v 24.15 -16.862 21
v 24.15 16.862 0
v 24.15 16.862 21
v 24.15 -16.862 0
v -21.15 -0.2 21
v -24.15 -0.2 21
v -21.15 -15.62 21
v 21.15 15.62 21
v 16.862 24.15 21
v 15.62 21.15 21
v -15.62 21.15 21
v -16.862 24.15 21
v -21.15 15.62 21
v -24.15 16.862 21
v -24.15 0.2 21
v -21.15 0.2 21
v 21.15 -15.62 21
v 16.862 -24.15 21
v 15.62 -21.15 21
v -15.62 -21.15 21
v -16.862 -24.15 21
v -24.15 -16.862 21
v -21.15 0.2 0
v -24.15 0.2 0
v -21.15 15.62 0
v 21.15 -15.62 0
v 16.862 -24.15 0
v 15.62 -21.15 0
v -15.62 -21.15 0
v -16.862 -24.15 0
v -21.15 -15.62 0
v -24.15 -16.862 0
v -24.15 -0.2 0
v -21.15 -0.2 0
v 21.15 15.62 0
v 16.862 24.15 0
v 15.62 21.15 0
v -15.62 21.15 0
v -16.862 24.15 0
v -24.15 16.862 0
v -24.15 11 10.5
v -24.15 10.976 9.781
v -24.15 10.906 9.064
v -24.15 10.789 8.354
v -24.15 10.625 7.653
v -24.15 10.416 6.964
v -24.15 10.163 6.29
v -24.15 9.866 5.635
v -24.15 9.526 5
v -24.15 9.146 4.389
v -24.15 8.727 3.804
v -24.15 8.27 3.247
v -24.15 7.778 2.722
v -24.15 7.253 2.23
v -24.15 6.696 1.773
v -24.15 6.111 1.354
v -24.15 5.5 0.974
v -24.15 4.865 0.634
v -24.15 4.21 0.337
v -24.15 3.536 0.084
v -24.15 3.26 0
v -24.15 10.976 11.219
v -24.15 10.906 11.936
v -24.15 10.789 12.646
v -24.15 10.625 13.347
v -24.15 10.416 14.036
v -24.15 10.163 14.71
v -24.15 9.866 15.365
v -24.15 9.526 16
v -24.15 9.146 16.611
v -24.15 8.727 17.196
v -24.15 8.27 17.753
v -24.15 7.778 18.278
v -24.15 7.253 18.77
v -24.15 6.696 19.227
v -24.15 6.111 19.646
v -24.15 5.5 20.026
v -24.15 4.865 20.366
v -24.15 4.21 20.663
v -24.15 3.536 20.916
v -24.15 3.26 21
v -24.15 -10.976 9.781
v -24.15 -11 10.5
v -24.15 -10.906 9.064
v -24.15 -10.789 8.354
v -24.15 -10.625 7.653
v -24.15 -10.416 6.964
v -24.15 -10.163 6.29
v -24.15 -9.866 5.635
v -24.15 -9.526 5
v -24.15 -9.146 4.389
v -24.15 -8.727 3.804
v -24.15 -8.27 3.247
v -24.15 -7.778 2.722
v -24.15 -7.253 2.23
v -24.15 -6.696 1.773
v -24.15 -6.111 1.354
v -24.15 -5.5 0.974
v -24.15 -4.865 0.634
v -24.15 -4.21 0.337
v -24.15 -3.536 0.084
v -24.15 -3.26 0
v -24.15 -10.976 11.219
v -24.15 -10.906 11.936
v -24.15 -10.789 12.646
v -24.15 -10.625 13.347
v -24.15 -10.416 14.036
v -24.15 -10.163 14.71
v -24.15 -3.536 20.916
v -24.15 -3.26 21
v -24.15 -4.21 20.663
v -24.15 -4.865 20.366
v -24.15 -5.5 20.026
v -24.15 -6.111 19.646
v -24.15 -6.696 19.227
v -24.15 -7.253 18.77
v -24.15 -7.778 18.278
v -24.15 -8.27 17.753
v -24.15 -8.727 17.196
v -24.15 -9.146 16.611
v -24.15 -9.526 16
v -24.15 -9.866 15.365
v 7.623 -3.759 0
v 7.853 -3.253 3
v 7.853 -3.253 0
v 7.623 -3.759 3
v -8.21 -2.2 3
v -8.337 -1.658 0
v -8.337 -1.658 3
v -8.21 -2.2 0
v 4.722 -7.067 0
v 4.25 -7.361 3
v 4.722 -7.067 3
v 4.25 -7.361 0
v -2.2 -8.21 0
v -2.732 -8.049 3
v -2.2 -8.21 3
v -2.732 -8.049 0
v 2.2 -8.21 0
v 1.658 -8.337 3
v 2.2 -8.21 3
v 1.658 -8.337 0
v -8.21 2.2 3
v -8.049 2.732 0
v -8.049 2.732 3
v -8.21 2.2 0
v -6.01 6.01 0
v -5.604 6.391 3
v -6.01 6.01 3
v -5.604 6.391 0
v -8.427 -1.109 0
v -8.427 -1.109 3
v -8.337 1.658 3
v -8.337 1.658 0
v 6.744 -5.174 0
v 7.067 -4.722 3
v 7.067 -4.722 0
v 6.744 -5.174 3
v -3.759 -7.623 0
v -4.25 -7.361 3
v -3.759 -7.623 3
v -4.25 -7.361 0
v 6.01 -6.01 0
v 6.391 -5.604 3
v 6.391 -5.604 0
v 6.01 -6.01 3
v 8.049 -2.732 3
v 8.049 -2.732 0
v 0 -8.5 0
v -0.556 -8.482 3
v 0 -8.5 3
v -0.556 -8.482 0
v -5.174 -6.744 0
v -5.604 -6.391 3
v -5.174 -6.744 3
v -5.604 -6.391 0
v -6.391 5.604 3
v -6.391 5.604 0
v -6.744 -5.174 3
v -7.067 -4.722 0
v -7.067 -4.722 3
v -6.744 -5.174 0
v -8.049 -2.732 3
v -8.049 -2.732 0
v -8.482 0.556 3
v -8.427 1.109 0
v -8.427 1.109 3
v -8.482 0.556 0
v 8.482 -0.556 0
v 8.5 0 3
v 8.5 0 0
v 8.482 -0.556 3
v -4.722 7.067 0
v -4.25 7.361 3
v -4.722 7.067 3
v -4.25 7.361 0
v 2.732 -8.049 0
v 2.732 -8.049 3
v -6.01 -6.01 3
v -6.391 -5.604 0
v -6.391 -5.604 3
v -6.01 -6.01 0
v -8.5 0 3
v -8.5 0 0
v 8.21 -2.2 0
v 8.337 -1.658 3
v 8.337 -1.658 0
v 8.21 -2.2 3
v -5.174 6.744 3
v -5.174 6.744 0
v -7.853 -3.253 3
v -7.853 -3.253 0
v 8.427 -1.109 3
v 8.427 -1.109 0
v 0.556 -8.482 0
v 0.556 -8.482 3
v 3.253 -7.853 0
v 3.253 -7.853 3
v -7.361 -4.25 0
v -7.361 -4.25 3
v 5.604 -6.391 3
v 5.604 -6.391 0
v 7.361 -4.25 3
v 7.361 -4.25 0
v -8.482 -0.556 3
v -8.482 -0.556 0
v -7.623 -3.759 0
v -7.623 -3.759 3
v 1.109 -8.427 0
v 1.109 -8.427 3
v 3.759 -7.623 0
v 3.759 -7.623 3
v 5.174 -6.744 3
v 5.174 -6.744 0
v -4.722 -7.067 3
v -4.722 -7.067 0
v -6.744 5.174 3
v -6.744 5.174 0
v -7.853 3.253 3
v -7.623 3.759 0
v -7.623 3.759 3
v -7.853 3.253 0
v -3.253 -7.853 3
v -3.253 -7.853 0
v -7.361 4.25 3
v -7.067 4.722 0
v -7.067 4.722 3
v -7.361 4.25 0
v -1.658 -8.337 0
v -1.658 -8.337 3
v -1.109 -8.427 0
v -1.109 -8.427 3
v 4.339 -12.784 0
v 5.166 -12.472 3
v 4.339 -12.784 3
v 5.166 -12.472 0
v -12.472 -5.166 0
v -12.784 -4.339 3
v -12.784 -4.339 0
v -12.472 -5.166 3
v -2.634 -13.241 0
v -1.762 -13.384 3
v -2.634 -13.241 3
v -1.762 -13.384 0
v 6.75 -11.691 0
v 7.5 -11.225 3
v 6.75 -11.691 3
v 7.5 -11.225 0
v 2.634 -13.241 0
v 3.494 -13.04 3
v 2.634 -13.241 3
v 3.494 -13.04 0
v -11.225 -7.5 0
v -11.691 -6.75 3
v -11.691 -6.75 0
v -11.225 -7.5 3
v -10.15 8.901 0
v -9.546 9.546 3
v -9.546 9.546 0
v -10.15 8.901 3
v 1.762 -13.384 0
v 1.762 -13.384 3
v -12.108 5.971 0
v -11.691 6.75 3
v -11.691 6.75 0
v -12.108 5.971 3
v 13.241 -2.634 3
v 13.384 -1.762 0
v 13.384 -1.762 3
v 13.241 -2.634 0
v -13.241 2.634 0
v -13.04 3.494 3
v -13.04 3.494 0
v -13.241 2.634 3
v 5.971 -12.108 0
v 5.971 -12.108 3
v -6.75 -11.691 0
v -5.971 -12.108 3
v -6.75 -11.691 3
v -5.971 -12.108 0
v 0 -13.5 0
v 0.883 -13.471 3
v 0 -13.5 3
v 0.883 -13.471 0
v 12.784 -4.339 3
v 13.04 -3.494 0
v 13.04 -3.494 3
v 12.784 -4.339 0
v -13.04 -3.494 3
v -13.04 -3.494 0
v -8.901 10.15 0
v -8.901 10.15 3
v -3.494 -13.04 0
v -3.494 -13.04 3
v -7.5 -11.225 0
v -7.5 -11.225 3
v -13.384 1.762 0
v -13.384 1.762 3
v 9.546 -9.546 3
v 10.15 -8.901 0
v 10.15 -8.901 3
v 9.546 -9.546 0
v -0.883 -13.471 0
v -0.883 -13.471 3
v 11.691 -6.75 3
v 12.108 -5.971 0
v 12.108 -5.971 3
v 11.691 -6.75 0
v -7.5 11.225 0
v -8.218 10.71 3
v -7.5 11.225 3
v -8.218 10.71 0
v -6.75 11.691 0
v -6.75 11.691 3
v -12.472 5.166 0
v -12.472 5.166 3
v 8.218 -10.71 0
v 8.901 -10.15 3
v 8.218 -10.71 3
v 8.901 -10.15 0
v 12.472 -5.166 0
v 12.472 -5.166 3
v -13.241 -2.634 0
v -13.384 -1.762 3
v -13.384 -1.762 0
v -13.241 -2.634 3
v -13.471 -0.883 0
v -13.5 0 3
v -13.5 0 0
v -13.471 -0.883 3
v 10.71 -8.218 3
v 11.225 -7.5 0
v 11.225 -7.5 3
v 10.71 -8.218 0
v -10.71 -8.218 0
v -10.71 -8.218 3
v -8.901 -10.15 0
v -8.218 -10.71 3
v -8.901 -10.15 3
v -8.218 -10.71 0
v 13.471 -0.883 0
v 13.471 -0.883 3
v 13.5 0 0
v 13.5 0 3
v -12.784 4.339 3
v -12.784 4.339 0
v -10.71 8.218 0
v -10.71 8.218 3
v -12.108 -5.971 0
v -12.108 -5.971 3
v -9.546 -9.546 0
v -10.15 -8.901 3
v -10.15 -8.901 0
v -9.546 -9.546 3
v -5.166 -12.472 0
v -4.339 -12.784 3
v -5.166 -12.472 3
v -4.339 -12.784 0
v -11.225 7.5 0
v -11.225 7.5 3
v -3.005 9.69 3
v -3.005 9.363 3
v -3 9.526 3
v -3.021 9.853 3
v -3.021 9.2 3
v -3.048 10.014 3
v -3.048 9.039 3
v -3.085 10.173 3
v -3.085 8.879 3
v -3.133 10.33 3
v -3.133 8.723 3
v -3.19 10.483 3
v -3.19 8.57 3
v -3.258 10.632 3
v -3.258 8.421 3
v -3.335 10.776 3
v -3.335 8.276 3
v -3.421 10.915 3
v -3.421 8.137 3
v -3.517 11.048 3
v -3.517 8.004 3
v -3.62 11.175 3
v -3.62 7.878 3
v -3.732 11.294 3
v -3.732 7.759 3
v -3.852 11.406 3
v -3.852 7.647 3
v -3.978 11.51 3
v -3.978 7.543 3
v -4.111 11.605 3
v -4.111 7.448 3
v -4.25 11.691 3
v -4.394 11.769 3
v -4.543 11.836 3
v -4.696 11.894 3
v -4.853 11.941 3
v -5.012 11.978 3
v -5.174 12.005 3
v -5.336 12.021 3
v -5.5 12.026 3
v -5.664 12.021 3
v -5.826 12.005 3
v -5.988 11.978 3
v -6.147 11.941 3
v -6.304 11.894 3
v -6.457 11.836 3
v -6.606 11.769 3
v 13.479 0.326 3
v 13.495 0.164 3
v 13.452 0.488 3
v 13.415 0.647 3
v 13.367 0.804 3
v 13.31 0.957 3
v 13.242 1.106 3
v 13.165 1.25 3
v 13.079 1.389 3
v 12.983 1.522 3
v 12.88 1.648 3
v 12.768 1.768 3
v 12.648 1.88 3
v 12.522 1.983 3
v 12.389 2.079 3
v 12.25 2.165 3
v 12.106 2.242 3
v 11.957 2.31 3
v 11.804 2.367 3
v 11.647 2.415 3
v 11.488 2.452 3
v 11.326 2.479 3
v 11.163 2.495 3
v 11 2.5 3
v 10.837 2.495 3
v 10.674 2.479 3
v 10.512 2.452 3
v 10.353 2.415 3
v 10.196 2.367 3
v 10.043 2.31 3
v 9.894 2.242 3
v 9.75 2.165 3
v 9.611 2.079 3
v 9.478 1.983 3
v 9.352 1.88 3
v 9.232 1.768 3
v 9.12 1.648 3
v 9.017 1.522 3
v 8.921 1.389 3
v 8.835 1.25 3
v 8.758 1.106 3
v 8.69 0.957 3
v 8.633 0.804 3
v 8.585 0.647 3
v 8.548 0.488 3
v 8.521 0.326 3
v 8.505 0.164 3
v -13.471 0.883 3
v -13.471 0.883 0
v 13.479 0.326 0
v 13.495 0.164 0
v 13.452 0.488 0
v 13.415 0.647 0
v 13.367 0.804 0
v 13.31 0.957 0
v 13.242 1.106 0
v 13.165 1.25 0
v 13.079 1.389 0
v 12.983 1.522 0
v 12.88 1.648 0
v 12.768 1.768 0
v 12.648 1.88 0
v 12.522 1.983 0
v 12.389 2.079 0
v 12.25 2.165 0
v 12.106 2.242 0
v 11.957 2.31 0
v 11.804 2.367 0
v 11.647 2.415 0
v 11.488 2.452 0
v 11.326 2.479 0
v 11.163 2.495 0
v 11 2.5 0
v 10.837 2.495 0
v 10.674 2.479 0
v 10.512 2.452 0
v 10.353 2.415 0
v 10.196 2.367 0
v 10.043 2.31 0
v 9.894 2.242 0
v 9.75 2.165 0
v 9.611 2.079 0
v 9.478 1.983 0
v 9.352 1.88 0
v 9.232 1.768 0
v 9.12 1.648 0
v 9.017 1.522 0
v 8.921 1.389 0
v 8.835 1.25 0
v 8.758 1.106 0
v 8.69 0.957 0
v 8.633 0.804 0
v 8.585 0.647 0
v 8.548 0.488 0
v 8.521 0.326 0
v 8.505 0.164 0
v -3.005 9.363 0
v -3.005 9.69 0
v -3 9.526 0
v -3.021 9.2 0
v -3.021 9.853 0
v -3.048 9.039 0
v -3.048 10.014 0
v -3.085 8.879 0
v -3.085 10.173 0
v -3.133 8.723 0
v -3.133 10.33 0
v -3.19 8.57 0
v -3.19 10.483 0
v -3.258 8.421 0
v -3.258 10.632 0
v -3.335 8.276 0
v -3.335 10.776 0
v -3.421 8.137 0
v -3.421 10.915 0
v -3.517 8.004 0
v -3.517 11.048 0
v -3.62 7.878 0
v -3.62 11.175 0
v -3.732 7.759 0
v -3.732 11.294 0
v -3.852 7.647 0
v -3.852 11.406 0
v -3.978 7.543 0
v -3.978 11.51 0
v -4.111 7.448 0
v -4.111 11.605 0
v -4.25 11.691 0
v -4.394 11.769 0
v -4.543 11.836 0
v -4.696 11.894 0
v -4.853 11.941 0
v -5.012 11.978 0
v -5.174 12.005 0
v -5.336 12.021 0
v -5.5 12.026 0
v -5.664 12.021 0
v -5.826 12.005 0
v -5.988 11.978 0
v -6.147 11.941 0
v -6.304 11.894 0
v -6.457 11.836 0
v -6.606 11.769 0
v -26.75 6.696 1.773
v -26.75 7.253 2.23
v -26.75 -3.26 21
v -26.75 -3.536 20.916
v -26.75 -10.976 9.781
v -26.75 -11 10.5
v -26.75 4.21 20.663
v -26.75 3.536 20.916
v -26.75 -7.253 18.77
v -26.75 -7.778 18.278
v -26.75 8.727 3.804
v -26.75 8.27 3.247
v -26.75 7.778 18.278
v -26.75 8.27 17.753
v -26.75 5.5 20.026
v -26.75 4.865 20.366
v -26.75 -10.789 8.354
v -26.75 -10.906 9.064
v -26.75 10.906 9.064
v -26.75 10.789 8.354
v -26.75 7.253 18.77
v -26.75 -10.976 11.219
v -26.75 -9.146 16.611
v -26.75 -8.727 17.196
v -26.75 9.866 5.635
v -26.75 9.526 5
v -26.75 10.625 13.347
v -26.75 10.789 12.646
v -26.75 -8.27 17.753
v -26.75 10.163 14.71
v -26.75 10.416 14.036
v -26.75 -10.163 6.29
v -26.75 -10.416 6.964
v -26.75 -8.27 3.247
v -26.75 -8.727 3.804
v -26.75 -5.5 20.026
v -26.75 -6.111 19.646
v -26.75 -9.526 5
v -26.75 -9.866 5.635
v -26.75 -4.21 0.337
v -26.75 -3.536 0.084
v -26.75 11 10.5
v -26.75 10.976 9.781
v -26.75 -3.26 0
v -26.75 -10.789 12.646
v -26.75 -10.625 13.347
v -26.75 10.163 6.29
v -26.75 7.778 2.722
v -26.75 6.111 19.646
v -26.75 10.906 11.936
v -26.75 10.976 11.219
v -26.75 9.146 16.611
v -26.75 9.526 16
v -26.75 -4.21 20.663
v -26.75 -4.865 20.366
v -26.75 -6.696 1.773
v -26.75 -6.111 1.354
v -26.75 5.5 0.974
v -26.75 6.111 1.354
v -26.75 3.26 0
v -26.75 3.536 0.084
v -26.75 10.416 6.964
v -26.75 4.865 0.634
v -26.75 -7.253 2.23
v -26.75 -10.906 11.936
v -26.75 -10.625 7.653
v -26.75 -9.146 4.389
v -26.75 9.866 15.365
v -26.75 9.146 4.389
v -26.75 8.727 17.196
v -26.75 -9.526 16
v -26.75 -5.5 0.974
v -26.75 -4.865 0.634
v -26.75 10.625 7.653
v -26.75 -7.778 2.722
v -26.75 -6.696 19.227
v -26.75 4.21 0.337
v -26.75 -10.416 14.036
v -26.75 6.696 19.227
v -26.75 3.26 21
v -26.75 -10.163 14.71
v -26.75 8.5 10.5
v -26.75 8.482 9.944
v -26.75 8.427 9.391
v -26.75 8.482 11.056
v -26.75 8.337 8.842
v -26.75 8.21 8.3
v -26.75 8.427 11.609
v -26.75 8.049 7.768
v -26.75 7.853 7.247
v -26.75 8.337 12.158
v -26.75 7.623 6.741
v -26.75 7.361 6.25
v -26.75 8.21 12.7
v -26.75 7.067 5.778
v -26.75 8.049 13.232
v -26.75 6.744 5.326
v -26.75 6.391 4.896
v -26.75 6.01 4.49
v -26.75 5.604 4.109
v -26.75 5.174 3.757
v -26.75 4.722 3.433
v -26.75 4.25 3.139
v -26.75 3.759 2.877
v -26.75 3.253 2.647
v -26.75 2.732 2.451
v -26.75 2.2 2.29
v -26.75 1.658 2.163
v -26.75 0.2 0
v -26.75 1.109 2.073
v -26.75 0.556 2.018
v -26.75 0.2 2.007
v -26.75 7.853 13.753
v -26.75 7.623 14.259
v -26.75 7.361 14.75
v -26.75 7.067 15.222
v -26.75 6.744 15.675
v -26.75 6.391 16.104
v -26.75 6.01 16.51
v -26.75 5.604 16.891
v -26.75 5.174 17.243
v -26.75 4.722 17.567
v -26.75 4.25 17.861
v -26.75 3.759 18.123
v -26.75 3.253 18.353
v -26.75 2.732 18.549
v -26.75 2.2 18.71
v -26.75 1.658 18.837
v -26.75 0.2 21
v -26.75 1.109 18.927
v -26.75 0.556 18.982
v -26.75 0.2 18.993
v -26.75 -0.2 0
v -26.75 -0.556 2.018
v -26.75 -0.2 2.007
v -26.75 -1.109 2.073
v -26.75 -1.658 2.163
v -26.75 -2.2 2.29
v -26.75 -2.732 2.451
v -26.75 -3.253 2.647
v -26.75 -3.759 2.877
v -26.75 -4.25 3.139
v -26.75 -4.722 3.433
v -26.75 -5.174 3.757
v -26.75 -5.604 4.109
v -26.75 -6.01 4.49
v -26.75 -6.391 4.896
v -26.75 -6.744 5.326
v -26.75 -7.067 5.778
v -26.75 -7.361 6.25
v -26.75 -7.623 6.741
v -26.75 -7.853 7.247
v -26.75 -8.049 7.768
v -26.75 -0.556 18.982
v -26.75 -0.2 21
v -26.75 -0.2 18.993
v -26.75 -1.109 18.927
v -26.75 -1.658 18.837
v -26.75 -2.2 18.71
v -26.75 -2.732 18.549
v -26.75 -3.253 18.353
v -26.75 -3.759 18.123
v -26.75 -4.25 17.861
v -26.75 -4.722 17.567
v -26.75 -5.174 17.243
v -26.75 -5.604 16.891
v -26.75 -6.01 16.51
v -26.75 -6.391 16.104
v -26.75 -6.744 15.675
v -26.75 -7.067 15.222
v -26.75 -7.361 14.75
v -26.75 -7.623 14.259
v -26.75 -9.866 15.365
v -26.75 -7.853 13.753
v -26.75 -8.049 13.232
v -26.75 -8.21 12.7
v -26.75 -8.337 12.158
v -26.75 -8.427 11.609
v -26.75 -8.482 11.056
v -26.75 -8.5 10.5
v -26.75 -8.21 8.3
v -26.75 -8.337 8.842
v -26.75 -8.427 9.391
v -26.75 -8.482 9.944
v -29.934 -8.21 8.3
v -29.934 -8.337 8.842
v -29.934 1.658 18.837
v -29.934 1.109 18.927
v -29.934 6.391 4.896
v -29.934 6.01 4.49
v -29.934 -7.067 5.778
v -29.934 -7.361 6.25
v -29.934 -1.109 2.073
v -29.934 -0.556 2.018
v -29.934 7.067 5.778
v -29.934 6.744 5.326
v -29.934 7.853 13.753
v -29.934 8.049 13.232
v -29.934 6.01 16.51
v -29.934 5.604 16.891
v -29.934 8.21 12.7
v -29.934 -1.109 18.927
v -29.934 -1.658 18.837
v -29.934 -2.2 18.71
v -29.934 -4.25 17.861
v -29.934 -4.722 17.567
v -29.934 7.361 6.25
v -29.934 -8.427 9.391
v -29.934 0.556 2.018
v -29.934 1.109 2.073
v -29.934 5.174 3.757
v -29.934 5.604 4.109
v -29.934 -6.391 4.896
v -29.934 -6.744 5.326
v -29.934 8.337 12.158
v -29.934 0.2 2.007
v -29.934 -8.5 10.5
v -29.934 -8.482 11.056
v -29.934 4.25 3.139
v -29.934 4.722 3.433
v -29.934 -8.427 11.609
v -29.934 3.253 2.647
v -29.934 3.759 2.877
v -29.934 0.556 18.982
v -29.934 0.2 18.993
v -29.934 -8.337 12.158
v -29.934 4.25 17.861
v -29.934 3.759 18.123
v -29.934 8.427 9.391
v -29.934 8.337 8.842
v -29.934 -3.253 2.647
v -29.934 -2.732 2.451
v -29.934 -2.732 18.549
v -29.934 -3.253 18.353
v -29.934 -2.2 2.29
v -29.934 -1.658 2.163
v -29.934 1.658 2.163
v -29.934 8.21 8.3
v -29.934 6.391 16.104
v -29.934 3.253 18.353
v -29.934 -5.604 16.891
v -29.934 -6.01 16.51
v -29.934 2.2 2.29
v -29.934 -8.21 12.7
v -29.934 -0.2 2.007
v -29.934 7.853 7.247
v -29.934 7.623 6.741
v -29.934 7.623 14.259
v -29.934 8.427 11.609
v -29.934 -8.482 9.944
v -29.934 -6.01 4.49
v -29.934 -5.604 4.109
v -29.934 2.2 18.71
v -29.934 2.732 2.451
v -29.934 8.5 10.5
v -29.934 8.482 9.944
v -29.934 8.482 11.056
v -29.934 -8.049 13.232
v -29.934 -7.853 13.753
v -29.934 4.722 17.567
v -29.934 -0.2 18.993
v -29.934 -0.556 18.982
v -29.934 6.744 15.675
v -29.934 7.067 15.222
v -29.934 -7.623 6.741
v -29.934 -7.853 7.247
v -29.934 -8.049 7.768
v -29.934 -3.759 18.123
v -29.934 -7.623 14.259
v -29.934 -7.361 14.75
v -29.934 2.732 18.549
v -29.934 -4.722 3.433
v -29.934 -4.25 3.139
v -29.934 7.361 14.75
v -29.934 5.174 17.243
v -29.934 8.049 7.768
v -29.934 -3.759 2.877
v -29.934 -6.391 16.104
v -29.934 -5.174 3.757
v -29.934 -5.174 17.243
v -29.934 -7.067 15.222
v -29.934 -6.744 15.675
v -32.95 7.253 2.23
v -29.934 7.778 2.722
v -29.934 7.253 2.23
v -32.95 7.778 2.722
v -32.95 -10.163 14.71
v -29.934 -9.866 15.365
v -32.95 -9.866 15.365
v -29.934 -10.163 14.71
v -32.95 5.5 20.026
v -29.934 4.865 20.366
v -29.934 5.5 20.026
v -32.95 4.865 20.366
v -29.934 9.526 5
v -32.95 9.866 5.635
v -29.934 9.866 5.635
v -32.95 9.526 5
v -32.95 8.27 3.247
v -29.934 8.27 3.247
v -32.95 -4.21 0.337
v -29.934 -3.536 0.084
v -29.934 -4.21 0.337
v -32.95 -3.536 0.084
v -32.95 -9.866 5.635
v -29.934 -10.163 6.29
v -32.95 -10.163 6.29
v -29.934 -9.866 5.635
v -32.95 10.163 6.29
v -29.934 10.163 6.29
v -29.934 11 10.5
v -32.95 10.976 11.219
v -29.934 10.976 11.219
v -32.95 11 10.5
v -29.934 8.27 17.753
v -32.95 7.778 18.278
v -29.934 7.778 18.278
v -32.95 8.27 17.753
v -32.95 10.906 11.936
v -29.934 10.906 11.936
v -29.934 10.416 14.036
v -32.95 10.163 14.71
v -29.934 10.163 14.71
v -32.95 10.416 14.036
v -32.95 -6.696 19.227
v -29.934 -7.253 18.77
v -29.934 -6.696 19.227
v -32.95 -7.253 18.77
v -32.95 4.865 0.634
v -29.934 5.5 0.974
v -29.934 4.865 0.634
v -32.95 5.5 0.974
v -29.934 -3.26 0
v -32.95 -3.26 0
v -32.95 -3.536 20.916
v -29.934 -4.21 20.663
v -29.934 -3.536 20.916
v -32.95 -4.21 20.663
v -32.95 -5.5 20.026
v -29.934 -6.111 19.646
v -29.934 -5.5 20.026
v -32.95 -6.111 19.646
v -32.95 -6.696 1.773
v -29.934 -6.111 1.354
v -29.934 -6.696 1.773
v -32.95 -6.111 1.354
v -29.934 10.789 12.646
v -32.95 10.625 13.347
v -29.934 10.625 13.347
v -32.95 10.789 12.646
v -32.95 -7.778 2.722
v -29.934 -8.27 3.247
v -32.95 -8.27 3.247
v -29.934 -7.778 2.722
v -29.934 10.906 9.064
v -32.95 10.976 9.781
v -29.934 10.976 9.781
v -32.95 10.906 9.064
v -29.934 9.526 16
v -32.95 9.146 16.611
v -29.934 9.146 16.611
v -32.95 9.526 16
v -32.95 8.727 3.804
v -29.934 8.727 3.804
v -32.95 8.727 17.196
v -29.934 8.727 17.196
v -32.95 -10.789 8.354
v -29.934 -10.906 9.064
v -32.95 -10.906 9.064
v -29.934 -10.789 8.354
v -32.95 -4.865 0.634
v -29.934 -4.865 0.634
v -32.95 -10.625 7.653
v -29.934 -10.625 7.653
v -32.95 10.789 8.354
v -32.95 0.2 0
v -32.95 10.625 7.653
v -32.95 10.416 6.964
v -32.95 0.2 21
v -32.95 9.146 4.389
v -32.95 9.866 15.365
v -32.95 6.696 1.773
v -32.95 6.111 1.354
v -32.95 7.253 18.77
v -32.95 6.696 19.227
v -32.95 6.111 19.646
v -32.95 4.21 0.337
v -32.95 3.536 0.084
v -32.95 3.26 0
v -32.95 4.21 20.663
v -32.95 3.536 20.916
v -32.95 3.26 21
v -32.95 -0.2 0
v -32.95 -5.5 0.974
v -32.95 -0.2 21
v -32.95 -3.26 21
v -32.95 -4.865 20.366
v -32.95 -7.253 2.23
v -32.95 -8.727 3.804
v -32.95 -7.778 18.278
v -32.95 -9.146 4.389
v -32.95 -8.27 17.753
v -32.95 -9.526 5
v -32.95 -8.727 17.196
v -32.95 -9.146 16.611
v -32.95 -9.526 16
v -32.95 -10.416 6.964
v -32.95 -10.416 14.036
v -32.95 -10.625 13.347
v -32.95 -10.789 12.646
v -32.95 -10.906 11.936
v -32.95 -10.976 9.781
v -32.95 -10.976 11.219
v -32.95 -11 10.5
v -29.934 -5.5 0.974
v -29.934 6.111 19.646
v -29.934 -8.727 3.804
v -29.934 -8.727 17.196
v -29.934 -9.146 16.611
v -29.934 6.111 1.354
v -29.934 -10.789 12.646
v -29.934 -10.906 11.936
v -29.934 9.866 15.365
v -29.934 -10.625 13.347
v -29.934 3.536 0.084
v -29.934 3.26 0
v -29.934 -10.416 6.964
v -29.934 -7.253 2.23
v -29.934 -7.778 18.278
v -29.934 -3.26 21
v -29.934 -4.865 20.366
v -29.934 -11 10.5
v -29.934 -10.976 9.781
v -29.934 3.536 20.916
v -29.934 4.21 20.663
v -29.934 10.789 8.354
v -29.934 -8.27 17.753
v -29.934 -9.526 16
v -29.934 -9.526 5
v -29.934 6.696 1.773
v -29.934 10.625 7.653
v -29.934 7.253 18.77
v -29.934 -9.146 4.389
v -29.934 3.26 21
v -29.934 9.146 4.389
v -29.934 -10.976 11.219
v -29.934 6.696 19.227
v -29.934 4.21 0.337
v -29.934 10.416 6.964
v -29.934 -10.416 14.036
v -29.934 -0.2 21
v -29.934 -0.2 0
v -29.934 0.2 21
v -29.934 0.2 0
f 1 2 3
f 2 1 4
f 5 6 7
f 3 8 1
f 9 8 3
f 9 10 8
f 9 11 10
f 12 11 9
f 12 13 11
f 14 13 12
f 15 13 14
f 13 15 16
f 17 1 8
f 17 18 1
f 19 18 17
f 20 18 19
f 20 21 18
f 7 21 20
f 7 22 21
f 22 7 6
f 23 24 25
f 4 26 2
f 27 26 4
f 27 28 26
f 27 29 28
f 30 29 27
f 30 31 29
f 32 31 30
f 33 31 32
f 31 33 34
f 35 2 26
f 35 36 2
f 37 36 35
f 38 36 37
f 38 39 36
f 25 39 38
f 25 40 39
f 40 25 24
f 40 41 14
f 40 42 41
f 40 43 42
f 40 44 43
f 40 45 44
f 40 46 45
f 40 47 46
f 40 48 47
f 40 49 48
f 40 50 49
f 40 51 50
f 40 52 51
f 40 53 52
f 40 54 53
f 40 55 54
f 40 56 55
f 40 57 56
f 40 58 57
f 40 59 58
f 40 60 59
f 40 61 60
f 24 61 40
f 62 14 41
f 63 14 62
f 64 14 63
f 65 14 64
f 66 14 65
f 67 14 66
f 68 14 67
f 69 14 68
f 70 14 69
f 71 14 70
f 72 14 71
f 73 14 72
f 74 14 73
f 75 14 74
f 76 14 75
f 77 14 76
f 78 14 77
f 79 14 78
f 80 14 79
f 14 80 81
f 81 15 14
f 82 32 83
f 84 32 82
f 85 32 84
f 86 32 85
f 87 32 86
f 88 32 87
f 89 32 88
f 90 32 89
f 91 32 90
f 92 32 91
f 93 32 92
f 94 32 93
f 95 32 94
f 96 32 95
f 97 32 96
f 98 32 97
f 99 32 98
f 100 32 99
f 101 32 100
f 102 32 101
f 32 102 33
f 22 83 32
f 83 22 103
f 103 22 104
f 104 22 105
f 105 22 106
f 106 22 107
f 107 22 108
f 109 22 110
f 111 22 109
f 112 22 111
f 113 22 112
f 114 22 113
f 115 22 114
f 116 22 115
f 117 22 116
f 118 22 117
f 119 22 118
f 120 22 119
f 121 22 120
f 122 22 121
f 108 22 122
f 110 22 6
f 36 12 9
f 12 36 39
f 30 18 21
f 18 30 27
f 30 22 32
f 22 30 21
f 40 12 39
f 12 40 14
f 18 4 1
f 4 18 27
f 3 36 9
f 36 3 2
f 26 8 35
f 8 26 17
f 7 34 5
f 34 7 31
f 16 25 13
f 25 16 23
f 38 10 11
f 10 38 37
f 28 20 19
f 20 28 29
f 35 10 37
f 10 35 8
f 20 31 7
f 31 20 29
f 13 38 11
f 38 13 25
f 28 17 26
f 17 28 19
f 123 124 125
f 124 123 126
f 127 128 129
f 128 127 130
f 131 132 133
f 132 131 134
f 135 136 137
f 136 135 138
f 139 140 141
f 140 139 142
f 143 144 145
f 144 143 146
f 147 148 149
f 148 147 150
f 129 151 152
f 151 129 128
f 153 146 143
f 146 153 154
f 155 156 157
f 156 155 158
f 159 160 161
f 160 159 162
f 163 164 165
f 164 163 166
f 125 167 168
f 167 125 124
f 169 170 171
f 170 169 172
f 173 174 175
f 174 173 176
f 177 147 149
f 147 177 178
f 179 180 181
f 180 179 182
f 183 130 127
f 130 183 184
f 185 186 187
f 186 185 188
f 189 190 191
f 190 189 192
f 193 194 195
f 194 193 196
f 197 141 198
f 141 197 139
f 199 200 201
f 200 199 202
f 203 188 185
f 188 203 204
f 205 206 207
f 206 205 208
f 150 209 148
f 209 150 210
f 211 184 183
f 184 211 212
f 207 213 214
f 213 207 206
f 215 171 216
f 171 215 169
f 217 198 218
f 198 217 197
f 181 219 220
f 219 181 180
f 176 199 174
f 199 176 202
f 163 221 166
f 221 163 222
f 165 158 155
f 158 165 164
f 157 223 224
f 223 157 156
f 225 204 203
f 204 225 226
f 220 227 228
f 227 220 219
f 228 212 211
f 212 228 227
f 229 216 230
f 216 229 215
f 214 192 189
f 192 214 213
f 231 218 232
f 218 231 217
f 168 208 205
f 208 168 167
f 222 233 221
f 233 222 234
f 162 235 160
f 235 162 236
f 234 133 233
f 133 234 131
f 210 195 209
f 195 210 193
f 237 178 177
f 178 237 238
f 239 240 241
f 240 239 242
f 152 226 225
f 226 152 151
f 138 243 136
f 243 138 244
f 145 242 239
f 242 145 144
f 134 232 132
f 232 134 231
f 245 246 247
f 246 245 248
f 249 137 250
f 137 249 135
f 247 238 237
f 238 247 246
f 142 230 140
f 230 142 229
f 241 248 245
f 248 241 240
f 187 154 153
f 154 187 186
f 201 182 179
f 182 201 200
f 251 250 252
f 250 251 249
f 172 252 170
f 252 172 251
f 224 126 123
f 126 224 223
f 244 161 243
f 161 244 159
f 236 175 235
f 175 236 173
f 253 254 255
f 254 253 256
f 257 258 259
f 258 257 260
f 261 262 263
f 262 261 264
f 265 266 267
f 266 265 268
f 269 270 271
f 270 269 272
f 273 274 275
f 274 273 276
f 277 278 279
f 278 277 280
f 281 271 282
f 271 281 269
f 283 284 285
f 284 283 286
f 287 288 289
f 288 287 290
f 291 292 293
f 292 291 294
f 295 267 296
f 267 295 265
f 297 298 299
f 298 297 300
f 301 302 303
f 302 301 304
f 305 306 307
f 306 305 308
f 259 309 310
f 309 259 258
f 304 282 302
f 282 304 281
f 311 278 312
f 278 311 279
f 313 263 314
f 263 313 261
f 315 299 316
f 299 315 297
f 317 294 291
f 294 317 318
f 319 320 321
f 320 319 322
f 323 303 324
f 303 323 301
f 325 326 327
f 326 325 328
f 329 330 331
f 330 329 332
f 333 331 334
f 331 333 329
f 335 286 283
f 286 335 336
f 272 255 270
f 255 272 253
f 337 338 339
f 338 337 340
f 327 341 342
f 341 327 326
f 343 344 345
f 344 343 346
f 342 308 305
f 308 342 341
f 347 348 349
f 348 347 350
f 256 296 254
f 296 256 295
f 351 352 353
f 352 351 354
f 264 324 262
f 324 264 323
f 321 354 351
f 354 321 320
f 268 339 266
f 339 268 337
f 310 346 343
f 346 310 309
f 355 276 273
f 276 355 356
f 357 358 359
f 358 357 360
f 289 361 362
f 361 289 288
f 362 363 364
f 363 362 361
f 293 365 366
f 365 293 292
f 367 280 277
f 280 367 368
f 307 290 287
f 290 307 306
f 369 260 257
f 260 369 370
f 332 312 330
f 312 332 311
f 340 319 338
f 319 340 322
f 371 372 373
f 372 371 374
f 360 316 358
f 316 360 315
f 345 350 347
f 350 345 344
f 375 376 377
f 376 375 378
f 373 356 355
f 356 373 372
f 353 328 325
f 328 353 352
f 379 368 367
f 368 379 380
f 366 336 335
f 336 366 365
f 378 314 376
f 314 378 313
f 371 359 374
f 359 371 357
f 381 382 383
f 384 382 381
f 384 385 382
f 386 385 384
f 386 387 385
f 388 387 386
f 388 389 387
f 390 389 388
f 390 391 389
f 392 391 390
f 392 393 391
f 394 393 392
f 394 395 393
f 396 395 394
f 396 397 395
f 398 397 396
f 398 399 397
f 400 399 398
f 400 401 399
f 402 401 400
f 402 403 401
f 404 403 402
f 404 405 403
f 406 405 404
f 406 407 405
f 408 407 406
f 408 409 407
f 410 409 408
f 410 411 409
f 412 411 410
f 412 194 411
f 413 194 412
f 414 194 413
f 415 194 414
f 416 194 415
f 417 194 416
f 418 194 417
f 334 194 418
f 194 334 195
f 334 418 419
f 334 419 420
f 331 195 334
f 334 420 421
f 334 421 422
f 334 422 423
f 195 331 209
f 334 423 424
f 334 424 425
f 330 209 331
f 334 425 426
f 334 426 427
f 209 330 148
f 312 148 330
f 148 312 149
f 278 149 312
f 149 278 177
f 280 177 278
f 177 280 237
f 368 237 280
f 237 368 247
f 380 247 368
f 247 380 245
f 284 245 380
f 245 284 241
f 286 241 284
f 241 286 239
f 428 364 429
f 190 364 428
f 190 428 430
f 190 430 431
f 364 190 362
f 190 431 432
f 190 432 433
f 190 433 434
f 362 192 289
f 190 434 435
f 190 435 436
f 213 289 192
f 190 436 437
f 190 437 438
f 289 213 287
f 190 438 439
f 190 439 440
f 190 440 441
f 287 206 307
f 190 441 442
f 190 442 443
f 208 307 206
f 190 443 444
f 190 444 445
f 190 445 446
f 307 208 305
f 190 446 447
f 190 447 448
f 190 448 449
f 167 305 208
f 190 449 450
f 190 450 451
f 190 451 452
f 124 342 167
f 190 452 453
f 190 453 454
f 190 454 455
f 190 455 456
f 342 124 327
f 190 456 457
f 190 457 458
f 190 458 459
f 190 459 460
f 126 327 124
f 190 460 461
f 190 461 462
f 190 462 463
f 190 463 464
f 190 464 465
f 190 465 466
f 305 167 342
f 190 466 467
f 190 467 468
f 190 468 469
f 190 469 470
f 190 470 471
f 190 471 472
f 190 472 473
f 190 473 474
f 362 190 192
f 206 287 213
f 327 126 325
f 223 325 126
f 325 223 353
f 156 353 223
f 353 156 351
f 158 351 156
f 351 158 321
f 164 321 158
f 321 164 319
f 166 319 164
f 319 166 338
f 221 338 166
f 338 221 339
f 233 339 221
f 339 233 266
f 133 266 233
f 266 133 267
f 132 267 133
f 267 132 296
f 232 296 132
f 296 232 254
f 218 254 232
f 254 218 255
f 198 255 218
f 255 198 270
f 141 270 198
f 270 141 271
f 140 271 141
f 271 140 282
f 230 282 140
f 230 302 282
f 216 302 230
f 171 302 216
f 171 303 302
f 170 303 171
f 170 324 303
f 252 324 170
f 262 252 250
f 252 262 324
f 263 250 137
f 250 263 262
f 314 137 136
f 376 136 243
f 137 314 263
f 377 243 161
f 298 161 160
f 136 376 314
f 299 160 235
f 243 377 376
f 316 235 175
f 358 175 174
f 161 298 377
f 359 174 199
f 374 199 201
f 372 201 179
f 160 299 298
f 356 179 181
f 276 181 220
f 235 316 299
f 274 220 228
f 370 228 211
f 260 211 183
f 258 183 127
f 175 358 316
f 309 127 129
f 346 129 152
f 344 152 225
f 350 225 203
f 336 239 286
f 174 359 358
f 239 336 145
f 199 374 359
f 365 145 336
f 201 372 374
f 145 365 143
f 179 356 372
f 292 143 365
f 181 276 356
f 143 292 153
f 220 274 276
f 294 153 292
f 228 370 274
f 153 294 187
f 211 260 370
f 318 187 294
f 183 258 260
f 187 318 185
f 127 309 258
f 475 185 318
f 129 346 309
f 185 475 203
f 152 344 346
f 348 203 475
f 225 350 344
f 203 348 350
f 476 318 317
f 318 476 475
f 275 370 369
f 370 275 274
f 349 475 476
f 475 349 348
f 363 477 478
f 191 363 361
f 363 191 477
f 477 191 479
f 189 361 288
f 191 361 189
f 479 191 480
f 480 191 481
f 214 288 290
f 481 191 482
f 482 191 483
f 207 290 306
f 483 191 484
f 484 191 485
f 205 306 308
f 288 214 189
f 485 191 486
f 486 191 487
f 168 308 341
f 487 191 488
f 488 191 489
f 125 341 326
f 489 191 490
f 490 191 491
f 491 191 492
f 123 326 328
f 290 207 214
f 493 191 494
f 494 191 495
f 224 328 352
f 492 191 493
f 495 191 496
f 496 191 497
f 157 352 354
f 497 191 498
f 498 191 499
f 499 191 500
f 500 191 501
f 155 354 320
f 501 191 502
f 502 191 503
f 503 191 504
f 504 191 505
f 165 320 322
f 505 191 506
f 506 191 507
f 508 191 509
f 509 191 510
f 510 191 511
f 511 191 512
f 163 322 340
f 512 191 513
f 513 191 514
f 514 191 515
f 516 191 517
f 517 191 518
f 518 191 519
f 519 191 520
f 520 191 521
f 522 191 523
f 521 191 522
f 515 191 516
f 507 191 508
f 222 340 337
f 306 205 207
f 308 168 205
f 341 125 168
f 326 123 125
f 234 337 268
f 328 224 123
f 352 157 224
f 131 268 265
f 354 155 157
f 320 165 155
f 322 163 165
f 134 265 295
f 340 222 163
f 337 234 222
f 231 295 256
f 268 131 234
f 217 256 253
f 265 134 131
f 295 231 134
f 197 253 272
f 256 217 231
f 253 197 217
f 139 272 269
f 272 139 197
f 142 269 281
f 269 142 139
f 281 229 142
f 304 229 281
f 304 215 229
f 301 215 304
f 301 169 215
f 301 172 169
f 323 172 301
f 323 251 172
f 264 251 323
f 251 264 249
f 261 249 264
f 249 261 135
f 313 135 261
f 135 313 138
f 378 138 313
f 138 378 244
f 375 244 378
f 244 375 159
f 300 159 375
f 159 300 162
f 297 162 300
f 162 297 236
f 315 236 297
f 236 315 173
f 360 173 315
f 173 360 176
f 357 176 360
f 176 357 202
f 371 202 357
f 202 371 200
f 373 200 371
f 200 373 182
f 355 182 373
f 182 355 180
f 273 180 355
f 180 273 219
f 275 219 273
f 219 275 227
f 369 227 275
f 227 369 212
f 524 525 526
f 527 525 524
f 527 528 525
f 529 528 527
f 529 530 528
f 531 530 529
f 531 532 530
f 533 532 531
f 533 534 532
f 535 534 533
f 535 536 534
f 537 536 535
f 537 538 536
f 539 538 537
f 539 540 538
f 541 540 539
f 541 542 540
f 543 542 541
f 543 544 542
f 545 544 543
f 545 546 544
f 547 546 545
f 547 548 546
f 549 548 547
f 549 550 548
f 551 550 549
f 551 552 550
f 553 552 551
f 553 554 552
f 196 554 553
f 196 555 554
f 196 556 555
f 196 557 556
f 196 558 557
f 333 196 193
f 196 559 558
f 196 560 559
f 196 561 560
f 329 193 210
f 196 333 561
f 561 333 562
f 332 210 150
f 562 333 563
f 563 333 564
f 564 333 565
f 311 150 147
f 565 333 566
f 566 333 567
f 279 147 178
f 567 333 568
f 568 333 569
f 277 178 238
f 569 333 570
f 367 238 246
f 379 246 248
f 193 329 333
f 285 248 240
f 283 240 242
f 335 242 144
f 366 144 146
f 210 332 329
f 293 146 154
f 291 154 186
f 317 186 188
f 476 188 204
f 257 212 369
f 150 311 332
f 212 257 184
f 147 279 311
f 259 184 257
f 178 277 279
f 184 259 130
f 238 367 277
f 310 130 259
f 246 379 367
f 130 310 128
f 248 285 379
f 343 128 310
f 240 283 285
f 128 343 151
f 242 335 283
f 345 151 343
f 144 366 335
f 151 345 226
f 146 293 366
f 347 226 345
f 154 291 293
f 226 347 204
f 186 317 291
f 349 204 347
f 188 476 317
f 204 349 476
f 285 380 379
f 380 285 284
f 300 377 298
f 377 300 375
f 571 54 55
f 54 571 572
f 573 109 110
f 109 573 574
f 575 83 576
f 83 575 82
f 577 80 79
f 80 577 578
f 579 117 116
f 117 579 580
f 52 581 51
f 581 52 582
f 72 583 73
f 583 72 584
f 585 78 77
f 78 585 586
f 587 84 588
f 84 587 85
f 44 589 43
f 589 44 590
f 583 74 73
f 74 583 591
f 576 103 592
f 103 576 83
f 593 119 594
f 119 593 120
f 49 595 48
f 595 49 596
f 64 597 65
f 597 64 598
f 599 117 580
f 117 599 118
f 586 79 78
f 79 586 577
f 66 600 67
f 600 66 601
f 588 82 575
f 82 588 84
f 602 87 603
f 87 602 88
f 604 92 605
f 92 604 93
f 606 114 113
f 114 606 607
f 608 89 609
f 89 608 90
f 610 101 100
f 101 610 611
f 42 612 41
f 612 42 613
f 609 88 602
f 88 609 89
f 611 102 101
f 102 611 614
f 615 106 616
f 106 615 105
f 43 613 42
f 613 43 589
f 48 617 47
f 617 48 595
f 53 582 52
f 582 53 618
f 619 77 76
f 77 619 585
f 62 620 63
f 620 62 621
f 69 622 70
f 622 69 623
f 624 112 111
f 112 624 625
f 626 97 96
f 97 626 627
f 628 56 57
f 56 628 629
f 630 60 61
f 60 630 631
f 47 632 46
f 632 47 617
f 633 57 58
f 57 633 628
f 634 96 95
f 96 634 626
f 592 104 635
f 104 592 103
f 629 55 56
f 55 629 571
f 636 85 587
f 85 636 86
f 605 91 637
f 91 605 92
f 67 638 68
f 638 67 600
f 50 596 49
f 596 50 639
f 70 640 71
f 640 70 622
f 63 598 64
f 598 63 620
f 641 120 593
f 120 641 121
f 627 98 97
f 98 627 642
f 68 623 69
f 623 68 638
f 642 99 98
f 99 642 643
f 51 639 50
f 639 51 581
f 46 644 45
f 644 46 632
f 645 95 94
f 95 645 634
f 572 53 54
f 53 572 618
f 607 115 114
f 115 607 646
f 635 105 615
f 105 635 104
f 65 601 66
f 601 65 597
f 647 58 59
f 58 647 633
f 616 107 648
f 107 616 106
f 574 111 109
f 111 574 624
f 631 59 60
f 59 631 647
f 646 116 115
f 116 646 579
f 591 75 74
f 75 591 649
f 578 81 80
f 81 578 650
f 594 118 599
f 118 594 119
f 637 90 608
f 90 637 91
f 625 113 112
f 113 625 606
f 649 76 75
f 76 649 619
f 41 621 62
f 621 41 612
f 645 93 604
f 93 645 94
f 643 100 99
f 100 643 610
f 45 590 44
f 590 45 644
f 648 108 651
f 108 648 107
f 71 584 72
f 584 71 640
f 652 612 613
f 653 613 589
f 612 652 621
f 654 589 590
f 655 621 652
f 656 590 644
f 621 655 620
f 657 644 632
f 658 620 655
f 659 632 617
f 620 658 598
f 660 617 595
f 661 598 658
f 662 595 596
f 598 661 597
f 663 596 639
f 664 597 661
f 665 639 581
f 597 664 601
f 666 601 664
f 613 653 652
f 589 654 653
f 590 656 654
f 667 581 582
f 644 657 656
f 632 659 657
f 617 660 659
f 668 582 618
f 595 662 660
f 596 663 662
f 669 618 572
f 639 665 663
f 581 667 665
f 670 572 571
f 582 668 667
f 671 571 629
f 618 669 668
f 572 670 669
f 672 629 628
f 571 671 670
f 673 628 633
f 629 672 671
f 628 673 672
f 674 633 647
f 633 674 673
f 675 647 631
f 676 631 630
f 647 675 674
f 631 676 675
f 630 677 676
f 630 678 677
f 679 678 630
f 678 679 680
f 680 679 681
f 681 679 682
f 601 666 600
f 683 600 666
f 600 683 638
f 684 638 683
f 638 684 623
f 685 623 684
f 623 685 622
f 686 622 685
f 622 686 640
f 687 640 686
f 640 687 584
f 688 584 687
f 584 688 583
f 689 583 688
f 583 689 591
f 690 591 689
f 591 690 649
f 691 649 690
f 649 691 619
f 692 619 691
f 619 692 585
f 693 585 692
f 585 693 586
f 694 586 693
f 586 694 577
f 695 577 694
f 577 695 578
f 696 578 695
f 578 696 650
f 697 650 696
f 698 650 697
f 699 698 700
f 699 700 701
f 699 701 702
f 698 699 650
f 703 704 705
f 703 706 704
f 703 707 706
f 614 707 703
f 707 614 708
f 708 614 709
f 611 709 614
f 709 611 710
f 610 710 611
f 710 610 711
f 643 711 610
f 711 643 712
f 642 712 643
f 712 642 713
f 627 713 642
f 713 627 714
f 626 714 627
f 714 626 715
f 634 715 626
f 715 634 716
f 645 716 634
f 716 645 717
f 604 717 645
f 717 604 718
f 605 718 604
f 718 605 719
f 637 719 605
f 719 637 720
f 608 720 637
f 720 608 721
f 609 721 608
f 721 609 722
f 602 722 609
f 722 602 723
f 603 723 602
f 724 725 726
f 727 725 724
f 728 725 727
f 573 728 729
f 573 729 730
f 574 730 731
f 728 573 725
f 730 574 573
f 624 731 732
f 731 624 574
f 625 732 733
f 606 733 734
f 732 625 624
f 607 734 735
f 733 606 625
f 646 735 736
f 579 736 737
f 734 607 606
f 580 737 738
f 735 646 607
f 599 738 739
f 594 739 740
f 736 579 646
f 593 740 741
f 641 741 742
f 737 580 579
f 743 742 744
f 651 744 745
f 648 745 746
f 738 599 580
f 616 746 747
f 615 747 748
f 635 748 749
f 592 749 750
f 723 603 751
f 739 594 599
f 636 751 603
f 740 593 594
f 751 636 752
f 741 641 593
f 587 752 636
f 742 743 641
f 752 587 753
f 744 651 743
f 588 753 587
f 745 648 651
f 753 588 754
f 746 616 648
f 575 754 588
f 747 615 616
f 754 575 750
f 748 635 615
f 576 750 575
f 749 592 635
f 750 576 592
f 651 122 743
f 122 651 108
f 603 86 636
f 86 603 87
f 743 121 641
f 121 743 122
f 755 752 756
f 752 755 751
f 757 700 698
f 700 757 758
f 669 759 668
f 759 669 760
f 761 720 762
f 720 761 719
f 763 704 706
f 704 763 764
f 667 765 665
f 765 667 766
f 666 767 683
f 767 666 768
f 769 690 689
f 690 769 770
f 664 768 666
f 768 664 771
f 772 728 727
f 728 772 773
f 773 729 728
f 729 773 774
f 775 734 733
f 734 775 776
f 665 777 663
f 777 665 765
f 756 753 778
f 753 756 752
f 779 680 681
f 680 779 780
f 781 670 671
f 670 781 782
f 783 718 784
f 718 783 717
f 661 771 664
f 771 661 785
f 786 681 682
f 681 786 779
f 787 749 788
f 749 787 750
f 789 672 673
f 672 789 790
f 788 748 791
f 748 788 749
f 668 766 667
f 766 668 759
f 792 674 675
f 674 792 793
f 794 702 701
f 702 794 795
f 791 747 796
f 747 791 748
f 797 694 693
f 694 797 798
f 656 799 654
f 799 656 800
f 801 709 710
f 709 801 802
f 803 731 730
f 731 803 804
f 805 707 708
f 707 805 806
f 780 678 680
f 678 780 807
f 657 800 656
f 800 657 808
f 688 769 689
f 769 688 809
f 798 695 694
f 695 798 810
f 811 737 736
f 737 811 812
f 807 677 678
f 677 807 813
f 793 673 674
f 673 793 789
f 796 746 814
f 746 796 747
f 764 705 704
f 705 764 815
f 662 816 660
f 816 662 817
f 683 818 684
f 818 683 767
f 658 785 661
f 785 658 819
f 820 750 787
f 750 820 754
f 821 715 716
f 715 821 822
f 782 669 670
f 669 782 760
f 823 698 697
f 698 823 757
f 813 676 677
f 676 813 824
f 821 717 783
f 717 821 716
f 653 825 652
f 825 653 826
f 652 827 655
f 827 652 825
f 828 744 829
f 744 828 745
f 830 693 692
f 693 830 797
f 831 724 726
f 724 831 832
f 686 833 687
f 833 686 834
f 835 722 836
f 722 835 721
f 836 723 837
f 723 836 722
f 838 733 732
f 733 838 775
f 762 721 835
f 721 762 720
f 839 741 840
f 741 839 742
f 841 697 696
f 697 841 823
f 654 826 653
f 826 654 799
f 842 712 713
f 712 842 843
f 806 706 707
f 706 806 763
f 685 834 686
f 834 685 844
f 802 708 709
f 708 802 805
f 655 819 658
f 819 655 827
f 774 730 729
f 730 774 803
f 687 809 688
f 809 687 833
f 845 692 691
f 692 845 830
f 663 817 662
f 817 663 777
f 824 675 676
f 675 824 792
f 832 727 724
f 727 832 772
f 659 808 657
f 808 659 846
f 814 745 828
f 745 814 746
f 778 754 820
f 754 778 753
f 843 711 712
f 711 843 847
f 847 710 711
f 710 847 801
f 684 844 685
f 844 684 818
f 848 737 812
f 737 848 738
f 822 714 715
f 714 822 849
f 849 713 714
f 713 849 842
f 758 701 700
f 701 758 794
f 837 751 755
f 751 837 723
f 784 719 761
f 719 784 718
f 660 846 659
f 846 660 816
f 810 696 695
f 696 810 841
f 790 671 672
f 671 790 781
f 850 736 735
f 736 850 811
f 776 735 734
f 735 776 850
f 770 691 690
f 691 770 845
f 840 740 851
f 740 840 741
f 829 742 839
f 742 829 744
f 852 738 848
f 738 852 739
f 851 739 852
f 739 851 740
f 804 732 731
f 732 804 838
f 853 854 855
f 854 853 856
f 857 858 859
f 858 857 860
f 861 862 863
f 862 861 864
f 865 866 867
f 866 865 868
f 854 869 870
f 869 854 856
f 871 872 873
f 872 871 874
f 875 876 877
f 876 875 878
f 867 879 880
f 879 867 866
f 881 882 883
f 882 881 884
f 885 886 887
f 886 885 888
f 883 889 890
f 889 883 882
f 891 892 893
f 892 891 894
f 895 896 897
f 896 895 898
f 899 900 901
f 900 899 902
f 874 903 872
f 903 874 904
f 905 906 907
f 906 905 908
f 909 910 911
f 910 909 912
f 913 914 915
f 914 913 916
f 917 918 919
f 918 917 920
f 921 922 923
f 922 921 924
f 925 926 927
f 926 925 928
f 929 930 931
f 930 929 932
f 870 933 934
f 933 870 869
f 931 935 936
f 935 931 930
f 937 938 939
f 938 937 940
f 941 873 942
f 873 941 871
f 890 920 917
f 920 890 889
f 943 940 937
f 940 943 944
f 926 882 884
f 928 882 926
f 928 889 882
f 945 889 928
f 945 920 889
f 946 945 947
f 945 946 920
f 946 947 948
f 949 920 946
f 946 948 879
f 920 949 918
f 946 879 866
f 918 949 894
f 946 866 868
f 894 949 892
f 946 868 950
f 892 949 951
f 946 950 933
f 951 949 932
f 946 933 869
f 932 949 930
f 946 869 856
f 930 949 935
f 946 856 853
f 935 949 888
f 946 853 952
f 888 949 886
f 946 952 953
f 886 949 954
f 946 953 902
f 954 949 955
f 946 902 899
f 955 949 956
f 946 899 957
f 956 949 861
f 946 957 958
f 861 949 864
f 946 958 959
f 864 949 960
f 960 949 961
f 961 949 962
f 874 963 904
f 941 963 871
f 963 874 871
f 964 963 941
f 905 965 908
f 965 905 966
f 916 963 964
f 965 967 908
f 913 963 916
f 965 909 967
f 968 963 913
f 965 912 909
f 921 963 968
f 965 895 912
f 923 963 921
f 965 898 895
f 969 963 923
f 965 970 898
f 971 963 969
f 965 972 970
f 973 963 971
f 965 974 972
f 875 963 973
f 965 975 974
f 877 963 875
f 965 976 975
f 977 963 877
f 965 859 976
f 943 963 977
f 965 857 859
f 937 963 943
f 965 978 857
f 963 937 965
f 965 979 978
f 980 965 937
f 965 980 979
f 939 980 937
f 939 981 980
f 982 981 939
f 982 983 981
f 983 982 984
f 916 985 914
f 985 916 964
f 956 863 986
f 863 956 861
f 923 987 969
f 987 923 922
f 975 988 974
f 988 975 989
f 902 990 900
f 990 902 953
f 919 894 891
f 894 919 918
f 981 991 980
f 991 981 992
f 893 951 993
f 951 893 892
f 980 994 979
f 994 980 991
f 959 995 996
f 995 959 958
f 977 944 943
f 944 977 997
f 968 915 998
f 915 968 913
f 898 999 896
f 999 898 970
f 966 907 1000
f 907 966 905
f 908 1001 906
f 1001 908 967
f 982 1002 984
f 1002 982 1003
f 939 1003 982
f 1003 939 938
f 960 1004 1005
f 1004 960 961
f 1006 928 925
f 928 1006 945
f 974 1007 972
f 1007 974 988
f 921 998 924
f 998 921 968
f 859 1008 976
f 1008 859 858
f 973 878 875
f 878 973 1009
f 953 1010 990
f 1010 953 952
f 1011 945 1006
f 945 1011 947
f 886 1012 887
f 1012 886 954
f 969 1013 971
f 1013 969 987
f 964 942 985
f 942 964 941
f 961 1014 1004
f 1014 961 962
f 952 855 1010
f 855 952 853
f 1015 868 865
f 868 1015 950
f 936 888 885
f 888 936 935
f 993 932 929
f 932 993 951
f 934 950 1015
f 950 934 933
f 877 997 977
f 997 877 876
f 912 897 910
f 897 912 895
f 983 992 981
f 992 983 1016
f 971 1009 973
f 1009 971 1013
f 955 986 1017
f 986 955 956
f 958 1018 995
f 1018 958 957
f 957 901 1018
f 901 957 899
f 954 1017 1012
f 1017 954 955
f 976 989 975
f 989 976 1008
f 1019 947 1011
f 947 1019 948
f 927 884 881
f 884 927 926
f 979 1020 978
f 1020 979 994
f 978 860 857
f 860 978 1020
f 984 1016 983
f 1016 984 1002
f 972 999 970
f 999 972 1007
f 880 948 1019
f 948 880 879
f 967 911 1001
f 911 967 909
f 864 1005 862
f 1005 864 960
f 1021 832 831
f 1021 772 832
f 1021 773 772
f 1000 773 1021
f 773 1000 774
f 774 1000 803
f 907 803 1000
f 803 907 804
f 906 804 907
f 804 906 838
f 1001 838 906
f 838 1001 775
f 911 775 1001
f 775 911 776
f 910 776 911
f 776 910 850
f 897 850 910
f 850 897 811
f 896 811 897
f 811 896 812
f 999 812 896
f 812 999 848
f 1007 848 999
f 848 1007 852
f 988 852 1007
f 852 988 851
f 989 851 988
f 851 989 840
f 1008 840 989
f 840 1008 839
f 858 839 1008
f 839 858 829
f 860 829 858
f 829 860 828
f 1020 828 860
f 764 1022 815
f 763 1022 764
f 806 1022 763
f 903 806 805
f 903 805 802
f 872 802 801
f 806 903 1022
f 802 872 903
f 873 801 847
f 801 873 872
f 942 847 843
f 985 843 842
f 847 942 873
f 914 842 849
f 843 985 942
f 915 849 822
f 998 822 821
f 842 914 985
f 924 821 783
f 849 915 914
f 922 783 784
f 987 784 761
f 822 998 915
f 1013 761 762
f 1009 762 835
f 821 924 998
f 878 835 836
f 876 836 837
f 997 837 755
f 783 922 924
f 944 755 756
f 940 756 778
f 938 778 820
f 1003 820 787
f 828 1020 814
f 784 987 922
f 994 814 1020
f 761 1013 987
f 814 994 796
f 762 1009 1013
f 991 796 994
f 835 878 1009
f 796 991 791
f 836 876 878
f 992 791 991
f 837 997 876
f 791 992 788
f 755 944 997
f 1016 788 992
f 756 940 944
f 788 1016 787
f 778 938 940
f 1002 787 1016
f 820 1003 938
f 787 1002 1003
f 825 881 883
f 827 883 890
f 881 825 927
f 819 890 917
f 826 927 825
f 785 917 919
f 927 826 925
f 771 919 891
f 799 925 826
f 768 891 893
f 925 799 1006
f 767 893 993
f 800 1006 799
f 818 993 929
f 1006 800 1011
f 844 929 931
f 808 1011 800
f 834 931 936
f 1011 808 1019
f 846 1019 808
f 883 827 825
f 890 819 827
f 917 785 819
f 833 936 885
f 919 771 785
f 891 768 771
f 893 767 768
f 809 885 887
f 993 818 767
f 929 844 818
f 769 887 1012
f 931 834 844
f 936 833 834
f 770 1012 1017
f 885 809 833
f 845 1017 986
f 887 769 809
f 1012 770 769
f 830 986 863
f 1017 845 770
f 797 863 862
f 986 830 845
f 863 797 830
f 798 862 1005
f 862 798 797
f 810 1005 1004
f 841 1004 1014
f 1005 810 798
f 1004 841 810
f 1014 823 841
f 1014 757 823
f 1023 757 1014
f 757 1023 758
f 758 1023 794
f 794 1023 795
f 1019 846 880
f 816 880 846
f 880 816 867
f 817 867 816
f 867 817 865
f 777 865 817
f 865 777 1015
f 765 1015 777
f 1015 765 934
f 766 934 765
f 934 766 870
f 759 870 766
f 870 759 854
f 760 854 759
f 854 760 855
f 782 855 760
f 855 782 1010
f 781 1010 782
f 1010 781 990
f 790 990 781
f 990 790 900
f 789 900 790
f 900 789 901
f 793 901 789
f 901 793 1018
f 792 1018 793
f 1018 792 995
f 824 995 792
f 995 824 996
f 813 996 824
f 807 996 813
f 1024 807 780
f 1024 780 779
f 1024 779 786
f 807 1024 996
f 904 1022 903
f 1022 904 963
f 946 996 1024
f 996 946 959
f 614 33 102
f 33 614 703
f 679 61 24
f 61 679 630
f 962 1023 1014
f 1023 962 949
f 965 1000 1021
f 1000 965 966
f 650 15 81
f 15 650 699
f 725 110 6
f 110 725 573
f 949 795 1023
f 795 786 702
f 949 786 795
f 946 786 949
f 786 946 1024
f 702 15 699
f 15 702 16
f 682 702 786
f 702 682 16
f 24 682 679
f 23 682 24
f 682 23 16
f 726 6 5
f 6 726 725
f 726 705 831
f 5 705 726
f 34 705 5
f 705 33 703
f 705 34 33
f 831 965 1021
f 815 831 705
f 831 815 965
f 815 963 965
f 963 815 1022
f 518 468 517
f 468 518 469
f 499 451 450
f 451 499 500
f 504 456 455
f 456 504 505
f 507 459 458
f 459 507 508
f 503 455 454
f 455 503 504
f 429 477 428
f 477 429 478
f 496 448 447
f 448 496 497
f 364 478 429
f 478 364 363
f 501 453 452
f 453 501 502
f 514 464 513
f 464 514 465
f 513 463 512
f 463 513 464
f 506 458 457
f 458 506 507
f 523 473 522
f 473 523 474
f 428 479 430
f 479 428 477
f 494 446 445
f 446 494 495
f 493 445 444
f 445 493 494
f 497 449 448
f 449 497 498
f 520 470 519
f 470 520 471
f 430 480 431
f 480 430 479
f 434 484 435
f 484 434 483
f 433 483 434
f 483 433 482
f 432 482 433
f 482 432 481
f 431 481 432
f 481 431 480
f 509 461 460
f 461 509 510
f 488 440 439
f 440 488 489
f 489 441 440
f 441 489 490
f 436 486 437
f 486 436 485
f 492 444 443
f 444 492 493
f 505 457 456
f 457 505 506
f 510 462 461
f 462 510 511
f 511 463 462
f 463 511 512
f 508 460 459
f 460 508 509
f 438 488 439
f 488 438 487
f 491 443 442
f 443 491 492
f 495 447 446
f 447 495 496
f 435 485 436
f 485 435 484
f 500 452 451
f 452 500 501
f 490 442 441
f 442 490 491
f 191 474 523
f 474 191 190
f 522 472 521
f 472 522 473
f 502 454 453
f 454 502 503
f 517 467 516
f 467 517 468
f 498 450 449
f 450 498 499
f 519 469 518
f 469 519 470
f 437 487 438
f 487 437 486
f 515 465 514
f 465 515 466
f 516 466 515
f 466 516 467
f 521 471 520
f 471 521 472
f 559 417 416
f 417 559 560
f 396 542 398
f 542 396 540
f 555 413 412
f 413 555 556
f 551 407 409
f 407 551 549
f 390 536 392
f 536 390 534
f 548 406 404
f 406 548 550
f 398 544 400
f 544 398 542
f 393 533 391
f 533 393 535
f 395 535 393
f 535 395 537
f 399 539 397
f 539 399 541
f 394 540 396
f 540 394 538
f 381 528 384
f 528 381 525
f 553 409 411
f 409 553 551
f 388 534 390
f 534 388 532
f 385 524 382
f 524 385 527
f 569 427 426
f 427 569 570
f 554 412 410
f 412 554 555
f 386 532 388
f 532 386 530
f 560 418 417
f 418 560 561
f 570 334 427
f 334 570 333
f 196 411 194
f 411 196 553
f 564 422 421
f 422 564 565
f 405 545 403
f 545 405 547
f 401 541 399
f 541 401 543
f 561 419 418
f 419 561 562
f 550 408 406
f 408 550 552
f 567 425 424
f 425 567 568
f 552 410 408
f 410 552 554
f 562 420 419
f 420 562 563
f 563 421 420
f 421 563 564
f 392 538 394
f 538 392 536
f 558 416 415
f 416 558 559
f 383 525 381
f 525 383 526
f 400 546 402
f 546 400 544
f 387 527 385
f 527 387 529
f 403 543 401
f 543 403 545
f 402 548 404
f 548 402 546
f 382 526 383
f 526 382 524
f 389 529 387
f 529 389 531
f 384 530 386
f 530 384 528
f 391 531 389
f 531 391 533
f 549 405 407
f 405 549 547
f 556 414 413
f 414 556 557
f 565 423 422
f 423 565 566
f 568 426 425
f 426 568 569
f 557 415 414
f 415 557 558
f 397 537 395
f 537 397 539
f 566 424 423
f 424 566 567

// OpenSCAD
// OpenSCAD Ender 3 Clip-On Extruder
// (c) 2020, tmackay
//
// Licensed under a Creative Commons Attribution-ShareAlike 4.0 International (CC BY-SA 4.0) license, http://creativecommons.org/licenses/by-sa/4.0.

// Thickness of bracket wall
wall=3;
// Tolerance for split
tol=0.4;
// Layer height for vertical clearance
layer_h=0.2;
// Width of stepper motor
motor_w=42.3;
// Diagonal width of stator chamfer
chamf_w=52;
// Height of stator
chamf_h=21;
// Collar diameter (hole in metal bracket)
collar=22;
// Circlip offset (thickness of metal bracket)
circlip_o=2.8;
// Thickness of circlip
circlip_h=3;
// Width of circlip
circlip_w=5;
// Circlip opening angle (additional to 90 degree cutout)
circlip_a=30;
// Geometry overlap
AT=1/64;
ST=2*AT;
// Curve resolution
$fn=96;

// Stepper Holder
difference(){
    union(){
        translate([0,0,chamf_h/2])difference(){
            intersection(){
                cube([motor_w+2*wall,motor_w+2*wall,chamf_h],center=true);
                rotate(45)cube([chamf_w+2*wall,chamf_w+2*wall,chamf_h],center=true);
            }
            intersection(){
                cube([motor_w,motor_w,chamf_h+ST],center=true);
                rotate(45)cube([chamf_w,chamf_w,chamf_h+ST],center=true);
            }
        }
        translate([AT-motor_w/2-wall,0,chamf_h/2])mirror([1,0,1]){
            intersection(){
                union(){
                    cylinder(d=collar,h=circlip_o-layer_h+AT);
                    translate([0,0,circlip_o-layer_h])cylinder(d=collar-circlip_w,h=circlip_h+layer_h+AT);
                    translate([0,0,circlip_o+circlip_h])cylinder(d=collar,h=circlip_h+AT);
                }
                translate([-chamf_h/2,-collar/2,0])cube([chamf_h,collar,circlip_o+2*circlip_h+AT]);
            }
        }
    }
    translate([-(circlip_o+2*circlip_h+wall+motor_w/2+AT),-tol/2,-AT])cube([circlip_o+2*circlip_h+wall+ST,tol,chamf_h+ST]);
}

// Circlip
difference(){
    cylinder(d=collar+circlip_w,h=circlip_h);
    translate([0,0,-AT]){
        cylinder(d=collar-circlip_w,h=circlip_h+ST);
        cube([collar+circlip_w,collar+circlip_w,circlip_h+ST]);
        rotate(circlip_a)cube([collar+circlip_w,collar+circlip_w,circlip_h+ST]);
    }
}
translate([collar/2,0,0])cylinder(d=circlip_w,h=circlip_h);
rotate(circlip_a)translate([0,collar/2,0])cylinder(d=circlip_w,h=circlip_h);
